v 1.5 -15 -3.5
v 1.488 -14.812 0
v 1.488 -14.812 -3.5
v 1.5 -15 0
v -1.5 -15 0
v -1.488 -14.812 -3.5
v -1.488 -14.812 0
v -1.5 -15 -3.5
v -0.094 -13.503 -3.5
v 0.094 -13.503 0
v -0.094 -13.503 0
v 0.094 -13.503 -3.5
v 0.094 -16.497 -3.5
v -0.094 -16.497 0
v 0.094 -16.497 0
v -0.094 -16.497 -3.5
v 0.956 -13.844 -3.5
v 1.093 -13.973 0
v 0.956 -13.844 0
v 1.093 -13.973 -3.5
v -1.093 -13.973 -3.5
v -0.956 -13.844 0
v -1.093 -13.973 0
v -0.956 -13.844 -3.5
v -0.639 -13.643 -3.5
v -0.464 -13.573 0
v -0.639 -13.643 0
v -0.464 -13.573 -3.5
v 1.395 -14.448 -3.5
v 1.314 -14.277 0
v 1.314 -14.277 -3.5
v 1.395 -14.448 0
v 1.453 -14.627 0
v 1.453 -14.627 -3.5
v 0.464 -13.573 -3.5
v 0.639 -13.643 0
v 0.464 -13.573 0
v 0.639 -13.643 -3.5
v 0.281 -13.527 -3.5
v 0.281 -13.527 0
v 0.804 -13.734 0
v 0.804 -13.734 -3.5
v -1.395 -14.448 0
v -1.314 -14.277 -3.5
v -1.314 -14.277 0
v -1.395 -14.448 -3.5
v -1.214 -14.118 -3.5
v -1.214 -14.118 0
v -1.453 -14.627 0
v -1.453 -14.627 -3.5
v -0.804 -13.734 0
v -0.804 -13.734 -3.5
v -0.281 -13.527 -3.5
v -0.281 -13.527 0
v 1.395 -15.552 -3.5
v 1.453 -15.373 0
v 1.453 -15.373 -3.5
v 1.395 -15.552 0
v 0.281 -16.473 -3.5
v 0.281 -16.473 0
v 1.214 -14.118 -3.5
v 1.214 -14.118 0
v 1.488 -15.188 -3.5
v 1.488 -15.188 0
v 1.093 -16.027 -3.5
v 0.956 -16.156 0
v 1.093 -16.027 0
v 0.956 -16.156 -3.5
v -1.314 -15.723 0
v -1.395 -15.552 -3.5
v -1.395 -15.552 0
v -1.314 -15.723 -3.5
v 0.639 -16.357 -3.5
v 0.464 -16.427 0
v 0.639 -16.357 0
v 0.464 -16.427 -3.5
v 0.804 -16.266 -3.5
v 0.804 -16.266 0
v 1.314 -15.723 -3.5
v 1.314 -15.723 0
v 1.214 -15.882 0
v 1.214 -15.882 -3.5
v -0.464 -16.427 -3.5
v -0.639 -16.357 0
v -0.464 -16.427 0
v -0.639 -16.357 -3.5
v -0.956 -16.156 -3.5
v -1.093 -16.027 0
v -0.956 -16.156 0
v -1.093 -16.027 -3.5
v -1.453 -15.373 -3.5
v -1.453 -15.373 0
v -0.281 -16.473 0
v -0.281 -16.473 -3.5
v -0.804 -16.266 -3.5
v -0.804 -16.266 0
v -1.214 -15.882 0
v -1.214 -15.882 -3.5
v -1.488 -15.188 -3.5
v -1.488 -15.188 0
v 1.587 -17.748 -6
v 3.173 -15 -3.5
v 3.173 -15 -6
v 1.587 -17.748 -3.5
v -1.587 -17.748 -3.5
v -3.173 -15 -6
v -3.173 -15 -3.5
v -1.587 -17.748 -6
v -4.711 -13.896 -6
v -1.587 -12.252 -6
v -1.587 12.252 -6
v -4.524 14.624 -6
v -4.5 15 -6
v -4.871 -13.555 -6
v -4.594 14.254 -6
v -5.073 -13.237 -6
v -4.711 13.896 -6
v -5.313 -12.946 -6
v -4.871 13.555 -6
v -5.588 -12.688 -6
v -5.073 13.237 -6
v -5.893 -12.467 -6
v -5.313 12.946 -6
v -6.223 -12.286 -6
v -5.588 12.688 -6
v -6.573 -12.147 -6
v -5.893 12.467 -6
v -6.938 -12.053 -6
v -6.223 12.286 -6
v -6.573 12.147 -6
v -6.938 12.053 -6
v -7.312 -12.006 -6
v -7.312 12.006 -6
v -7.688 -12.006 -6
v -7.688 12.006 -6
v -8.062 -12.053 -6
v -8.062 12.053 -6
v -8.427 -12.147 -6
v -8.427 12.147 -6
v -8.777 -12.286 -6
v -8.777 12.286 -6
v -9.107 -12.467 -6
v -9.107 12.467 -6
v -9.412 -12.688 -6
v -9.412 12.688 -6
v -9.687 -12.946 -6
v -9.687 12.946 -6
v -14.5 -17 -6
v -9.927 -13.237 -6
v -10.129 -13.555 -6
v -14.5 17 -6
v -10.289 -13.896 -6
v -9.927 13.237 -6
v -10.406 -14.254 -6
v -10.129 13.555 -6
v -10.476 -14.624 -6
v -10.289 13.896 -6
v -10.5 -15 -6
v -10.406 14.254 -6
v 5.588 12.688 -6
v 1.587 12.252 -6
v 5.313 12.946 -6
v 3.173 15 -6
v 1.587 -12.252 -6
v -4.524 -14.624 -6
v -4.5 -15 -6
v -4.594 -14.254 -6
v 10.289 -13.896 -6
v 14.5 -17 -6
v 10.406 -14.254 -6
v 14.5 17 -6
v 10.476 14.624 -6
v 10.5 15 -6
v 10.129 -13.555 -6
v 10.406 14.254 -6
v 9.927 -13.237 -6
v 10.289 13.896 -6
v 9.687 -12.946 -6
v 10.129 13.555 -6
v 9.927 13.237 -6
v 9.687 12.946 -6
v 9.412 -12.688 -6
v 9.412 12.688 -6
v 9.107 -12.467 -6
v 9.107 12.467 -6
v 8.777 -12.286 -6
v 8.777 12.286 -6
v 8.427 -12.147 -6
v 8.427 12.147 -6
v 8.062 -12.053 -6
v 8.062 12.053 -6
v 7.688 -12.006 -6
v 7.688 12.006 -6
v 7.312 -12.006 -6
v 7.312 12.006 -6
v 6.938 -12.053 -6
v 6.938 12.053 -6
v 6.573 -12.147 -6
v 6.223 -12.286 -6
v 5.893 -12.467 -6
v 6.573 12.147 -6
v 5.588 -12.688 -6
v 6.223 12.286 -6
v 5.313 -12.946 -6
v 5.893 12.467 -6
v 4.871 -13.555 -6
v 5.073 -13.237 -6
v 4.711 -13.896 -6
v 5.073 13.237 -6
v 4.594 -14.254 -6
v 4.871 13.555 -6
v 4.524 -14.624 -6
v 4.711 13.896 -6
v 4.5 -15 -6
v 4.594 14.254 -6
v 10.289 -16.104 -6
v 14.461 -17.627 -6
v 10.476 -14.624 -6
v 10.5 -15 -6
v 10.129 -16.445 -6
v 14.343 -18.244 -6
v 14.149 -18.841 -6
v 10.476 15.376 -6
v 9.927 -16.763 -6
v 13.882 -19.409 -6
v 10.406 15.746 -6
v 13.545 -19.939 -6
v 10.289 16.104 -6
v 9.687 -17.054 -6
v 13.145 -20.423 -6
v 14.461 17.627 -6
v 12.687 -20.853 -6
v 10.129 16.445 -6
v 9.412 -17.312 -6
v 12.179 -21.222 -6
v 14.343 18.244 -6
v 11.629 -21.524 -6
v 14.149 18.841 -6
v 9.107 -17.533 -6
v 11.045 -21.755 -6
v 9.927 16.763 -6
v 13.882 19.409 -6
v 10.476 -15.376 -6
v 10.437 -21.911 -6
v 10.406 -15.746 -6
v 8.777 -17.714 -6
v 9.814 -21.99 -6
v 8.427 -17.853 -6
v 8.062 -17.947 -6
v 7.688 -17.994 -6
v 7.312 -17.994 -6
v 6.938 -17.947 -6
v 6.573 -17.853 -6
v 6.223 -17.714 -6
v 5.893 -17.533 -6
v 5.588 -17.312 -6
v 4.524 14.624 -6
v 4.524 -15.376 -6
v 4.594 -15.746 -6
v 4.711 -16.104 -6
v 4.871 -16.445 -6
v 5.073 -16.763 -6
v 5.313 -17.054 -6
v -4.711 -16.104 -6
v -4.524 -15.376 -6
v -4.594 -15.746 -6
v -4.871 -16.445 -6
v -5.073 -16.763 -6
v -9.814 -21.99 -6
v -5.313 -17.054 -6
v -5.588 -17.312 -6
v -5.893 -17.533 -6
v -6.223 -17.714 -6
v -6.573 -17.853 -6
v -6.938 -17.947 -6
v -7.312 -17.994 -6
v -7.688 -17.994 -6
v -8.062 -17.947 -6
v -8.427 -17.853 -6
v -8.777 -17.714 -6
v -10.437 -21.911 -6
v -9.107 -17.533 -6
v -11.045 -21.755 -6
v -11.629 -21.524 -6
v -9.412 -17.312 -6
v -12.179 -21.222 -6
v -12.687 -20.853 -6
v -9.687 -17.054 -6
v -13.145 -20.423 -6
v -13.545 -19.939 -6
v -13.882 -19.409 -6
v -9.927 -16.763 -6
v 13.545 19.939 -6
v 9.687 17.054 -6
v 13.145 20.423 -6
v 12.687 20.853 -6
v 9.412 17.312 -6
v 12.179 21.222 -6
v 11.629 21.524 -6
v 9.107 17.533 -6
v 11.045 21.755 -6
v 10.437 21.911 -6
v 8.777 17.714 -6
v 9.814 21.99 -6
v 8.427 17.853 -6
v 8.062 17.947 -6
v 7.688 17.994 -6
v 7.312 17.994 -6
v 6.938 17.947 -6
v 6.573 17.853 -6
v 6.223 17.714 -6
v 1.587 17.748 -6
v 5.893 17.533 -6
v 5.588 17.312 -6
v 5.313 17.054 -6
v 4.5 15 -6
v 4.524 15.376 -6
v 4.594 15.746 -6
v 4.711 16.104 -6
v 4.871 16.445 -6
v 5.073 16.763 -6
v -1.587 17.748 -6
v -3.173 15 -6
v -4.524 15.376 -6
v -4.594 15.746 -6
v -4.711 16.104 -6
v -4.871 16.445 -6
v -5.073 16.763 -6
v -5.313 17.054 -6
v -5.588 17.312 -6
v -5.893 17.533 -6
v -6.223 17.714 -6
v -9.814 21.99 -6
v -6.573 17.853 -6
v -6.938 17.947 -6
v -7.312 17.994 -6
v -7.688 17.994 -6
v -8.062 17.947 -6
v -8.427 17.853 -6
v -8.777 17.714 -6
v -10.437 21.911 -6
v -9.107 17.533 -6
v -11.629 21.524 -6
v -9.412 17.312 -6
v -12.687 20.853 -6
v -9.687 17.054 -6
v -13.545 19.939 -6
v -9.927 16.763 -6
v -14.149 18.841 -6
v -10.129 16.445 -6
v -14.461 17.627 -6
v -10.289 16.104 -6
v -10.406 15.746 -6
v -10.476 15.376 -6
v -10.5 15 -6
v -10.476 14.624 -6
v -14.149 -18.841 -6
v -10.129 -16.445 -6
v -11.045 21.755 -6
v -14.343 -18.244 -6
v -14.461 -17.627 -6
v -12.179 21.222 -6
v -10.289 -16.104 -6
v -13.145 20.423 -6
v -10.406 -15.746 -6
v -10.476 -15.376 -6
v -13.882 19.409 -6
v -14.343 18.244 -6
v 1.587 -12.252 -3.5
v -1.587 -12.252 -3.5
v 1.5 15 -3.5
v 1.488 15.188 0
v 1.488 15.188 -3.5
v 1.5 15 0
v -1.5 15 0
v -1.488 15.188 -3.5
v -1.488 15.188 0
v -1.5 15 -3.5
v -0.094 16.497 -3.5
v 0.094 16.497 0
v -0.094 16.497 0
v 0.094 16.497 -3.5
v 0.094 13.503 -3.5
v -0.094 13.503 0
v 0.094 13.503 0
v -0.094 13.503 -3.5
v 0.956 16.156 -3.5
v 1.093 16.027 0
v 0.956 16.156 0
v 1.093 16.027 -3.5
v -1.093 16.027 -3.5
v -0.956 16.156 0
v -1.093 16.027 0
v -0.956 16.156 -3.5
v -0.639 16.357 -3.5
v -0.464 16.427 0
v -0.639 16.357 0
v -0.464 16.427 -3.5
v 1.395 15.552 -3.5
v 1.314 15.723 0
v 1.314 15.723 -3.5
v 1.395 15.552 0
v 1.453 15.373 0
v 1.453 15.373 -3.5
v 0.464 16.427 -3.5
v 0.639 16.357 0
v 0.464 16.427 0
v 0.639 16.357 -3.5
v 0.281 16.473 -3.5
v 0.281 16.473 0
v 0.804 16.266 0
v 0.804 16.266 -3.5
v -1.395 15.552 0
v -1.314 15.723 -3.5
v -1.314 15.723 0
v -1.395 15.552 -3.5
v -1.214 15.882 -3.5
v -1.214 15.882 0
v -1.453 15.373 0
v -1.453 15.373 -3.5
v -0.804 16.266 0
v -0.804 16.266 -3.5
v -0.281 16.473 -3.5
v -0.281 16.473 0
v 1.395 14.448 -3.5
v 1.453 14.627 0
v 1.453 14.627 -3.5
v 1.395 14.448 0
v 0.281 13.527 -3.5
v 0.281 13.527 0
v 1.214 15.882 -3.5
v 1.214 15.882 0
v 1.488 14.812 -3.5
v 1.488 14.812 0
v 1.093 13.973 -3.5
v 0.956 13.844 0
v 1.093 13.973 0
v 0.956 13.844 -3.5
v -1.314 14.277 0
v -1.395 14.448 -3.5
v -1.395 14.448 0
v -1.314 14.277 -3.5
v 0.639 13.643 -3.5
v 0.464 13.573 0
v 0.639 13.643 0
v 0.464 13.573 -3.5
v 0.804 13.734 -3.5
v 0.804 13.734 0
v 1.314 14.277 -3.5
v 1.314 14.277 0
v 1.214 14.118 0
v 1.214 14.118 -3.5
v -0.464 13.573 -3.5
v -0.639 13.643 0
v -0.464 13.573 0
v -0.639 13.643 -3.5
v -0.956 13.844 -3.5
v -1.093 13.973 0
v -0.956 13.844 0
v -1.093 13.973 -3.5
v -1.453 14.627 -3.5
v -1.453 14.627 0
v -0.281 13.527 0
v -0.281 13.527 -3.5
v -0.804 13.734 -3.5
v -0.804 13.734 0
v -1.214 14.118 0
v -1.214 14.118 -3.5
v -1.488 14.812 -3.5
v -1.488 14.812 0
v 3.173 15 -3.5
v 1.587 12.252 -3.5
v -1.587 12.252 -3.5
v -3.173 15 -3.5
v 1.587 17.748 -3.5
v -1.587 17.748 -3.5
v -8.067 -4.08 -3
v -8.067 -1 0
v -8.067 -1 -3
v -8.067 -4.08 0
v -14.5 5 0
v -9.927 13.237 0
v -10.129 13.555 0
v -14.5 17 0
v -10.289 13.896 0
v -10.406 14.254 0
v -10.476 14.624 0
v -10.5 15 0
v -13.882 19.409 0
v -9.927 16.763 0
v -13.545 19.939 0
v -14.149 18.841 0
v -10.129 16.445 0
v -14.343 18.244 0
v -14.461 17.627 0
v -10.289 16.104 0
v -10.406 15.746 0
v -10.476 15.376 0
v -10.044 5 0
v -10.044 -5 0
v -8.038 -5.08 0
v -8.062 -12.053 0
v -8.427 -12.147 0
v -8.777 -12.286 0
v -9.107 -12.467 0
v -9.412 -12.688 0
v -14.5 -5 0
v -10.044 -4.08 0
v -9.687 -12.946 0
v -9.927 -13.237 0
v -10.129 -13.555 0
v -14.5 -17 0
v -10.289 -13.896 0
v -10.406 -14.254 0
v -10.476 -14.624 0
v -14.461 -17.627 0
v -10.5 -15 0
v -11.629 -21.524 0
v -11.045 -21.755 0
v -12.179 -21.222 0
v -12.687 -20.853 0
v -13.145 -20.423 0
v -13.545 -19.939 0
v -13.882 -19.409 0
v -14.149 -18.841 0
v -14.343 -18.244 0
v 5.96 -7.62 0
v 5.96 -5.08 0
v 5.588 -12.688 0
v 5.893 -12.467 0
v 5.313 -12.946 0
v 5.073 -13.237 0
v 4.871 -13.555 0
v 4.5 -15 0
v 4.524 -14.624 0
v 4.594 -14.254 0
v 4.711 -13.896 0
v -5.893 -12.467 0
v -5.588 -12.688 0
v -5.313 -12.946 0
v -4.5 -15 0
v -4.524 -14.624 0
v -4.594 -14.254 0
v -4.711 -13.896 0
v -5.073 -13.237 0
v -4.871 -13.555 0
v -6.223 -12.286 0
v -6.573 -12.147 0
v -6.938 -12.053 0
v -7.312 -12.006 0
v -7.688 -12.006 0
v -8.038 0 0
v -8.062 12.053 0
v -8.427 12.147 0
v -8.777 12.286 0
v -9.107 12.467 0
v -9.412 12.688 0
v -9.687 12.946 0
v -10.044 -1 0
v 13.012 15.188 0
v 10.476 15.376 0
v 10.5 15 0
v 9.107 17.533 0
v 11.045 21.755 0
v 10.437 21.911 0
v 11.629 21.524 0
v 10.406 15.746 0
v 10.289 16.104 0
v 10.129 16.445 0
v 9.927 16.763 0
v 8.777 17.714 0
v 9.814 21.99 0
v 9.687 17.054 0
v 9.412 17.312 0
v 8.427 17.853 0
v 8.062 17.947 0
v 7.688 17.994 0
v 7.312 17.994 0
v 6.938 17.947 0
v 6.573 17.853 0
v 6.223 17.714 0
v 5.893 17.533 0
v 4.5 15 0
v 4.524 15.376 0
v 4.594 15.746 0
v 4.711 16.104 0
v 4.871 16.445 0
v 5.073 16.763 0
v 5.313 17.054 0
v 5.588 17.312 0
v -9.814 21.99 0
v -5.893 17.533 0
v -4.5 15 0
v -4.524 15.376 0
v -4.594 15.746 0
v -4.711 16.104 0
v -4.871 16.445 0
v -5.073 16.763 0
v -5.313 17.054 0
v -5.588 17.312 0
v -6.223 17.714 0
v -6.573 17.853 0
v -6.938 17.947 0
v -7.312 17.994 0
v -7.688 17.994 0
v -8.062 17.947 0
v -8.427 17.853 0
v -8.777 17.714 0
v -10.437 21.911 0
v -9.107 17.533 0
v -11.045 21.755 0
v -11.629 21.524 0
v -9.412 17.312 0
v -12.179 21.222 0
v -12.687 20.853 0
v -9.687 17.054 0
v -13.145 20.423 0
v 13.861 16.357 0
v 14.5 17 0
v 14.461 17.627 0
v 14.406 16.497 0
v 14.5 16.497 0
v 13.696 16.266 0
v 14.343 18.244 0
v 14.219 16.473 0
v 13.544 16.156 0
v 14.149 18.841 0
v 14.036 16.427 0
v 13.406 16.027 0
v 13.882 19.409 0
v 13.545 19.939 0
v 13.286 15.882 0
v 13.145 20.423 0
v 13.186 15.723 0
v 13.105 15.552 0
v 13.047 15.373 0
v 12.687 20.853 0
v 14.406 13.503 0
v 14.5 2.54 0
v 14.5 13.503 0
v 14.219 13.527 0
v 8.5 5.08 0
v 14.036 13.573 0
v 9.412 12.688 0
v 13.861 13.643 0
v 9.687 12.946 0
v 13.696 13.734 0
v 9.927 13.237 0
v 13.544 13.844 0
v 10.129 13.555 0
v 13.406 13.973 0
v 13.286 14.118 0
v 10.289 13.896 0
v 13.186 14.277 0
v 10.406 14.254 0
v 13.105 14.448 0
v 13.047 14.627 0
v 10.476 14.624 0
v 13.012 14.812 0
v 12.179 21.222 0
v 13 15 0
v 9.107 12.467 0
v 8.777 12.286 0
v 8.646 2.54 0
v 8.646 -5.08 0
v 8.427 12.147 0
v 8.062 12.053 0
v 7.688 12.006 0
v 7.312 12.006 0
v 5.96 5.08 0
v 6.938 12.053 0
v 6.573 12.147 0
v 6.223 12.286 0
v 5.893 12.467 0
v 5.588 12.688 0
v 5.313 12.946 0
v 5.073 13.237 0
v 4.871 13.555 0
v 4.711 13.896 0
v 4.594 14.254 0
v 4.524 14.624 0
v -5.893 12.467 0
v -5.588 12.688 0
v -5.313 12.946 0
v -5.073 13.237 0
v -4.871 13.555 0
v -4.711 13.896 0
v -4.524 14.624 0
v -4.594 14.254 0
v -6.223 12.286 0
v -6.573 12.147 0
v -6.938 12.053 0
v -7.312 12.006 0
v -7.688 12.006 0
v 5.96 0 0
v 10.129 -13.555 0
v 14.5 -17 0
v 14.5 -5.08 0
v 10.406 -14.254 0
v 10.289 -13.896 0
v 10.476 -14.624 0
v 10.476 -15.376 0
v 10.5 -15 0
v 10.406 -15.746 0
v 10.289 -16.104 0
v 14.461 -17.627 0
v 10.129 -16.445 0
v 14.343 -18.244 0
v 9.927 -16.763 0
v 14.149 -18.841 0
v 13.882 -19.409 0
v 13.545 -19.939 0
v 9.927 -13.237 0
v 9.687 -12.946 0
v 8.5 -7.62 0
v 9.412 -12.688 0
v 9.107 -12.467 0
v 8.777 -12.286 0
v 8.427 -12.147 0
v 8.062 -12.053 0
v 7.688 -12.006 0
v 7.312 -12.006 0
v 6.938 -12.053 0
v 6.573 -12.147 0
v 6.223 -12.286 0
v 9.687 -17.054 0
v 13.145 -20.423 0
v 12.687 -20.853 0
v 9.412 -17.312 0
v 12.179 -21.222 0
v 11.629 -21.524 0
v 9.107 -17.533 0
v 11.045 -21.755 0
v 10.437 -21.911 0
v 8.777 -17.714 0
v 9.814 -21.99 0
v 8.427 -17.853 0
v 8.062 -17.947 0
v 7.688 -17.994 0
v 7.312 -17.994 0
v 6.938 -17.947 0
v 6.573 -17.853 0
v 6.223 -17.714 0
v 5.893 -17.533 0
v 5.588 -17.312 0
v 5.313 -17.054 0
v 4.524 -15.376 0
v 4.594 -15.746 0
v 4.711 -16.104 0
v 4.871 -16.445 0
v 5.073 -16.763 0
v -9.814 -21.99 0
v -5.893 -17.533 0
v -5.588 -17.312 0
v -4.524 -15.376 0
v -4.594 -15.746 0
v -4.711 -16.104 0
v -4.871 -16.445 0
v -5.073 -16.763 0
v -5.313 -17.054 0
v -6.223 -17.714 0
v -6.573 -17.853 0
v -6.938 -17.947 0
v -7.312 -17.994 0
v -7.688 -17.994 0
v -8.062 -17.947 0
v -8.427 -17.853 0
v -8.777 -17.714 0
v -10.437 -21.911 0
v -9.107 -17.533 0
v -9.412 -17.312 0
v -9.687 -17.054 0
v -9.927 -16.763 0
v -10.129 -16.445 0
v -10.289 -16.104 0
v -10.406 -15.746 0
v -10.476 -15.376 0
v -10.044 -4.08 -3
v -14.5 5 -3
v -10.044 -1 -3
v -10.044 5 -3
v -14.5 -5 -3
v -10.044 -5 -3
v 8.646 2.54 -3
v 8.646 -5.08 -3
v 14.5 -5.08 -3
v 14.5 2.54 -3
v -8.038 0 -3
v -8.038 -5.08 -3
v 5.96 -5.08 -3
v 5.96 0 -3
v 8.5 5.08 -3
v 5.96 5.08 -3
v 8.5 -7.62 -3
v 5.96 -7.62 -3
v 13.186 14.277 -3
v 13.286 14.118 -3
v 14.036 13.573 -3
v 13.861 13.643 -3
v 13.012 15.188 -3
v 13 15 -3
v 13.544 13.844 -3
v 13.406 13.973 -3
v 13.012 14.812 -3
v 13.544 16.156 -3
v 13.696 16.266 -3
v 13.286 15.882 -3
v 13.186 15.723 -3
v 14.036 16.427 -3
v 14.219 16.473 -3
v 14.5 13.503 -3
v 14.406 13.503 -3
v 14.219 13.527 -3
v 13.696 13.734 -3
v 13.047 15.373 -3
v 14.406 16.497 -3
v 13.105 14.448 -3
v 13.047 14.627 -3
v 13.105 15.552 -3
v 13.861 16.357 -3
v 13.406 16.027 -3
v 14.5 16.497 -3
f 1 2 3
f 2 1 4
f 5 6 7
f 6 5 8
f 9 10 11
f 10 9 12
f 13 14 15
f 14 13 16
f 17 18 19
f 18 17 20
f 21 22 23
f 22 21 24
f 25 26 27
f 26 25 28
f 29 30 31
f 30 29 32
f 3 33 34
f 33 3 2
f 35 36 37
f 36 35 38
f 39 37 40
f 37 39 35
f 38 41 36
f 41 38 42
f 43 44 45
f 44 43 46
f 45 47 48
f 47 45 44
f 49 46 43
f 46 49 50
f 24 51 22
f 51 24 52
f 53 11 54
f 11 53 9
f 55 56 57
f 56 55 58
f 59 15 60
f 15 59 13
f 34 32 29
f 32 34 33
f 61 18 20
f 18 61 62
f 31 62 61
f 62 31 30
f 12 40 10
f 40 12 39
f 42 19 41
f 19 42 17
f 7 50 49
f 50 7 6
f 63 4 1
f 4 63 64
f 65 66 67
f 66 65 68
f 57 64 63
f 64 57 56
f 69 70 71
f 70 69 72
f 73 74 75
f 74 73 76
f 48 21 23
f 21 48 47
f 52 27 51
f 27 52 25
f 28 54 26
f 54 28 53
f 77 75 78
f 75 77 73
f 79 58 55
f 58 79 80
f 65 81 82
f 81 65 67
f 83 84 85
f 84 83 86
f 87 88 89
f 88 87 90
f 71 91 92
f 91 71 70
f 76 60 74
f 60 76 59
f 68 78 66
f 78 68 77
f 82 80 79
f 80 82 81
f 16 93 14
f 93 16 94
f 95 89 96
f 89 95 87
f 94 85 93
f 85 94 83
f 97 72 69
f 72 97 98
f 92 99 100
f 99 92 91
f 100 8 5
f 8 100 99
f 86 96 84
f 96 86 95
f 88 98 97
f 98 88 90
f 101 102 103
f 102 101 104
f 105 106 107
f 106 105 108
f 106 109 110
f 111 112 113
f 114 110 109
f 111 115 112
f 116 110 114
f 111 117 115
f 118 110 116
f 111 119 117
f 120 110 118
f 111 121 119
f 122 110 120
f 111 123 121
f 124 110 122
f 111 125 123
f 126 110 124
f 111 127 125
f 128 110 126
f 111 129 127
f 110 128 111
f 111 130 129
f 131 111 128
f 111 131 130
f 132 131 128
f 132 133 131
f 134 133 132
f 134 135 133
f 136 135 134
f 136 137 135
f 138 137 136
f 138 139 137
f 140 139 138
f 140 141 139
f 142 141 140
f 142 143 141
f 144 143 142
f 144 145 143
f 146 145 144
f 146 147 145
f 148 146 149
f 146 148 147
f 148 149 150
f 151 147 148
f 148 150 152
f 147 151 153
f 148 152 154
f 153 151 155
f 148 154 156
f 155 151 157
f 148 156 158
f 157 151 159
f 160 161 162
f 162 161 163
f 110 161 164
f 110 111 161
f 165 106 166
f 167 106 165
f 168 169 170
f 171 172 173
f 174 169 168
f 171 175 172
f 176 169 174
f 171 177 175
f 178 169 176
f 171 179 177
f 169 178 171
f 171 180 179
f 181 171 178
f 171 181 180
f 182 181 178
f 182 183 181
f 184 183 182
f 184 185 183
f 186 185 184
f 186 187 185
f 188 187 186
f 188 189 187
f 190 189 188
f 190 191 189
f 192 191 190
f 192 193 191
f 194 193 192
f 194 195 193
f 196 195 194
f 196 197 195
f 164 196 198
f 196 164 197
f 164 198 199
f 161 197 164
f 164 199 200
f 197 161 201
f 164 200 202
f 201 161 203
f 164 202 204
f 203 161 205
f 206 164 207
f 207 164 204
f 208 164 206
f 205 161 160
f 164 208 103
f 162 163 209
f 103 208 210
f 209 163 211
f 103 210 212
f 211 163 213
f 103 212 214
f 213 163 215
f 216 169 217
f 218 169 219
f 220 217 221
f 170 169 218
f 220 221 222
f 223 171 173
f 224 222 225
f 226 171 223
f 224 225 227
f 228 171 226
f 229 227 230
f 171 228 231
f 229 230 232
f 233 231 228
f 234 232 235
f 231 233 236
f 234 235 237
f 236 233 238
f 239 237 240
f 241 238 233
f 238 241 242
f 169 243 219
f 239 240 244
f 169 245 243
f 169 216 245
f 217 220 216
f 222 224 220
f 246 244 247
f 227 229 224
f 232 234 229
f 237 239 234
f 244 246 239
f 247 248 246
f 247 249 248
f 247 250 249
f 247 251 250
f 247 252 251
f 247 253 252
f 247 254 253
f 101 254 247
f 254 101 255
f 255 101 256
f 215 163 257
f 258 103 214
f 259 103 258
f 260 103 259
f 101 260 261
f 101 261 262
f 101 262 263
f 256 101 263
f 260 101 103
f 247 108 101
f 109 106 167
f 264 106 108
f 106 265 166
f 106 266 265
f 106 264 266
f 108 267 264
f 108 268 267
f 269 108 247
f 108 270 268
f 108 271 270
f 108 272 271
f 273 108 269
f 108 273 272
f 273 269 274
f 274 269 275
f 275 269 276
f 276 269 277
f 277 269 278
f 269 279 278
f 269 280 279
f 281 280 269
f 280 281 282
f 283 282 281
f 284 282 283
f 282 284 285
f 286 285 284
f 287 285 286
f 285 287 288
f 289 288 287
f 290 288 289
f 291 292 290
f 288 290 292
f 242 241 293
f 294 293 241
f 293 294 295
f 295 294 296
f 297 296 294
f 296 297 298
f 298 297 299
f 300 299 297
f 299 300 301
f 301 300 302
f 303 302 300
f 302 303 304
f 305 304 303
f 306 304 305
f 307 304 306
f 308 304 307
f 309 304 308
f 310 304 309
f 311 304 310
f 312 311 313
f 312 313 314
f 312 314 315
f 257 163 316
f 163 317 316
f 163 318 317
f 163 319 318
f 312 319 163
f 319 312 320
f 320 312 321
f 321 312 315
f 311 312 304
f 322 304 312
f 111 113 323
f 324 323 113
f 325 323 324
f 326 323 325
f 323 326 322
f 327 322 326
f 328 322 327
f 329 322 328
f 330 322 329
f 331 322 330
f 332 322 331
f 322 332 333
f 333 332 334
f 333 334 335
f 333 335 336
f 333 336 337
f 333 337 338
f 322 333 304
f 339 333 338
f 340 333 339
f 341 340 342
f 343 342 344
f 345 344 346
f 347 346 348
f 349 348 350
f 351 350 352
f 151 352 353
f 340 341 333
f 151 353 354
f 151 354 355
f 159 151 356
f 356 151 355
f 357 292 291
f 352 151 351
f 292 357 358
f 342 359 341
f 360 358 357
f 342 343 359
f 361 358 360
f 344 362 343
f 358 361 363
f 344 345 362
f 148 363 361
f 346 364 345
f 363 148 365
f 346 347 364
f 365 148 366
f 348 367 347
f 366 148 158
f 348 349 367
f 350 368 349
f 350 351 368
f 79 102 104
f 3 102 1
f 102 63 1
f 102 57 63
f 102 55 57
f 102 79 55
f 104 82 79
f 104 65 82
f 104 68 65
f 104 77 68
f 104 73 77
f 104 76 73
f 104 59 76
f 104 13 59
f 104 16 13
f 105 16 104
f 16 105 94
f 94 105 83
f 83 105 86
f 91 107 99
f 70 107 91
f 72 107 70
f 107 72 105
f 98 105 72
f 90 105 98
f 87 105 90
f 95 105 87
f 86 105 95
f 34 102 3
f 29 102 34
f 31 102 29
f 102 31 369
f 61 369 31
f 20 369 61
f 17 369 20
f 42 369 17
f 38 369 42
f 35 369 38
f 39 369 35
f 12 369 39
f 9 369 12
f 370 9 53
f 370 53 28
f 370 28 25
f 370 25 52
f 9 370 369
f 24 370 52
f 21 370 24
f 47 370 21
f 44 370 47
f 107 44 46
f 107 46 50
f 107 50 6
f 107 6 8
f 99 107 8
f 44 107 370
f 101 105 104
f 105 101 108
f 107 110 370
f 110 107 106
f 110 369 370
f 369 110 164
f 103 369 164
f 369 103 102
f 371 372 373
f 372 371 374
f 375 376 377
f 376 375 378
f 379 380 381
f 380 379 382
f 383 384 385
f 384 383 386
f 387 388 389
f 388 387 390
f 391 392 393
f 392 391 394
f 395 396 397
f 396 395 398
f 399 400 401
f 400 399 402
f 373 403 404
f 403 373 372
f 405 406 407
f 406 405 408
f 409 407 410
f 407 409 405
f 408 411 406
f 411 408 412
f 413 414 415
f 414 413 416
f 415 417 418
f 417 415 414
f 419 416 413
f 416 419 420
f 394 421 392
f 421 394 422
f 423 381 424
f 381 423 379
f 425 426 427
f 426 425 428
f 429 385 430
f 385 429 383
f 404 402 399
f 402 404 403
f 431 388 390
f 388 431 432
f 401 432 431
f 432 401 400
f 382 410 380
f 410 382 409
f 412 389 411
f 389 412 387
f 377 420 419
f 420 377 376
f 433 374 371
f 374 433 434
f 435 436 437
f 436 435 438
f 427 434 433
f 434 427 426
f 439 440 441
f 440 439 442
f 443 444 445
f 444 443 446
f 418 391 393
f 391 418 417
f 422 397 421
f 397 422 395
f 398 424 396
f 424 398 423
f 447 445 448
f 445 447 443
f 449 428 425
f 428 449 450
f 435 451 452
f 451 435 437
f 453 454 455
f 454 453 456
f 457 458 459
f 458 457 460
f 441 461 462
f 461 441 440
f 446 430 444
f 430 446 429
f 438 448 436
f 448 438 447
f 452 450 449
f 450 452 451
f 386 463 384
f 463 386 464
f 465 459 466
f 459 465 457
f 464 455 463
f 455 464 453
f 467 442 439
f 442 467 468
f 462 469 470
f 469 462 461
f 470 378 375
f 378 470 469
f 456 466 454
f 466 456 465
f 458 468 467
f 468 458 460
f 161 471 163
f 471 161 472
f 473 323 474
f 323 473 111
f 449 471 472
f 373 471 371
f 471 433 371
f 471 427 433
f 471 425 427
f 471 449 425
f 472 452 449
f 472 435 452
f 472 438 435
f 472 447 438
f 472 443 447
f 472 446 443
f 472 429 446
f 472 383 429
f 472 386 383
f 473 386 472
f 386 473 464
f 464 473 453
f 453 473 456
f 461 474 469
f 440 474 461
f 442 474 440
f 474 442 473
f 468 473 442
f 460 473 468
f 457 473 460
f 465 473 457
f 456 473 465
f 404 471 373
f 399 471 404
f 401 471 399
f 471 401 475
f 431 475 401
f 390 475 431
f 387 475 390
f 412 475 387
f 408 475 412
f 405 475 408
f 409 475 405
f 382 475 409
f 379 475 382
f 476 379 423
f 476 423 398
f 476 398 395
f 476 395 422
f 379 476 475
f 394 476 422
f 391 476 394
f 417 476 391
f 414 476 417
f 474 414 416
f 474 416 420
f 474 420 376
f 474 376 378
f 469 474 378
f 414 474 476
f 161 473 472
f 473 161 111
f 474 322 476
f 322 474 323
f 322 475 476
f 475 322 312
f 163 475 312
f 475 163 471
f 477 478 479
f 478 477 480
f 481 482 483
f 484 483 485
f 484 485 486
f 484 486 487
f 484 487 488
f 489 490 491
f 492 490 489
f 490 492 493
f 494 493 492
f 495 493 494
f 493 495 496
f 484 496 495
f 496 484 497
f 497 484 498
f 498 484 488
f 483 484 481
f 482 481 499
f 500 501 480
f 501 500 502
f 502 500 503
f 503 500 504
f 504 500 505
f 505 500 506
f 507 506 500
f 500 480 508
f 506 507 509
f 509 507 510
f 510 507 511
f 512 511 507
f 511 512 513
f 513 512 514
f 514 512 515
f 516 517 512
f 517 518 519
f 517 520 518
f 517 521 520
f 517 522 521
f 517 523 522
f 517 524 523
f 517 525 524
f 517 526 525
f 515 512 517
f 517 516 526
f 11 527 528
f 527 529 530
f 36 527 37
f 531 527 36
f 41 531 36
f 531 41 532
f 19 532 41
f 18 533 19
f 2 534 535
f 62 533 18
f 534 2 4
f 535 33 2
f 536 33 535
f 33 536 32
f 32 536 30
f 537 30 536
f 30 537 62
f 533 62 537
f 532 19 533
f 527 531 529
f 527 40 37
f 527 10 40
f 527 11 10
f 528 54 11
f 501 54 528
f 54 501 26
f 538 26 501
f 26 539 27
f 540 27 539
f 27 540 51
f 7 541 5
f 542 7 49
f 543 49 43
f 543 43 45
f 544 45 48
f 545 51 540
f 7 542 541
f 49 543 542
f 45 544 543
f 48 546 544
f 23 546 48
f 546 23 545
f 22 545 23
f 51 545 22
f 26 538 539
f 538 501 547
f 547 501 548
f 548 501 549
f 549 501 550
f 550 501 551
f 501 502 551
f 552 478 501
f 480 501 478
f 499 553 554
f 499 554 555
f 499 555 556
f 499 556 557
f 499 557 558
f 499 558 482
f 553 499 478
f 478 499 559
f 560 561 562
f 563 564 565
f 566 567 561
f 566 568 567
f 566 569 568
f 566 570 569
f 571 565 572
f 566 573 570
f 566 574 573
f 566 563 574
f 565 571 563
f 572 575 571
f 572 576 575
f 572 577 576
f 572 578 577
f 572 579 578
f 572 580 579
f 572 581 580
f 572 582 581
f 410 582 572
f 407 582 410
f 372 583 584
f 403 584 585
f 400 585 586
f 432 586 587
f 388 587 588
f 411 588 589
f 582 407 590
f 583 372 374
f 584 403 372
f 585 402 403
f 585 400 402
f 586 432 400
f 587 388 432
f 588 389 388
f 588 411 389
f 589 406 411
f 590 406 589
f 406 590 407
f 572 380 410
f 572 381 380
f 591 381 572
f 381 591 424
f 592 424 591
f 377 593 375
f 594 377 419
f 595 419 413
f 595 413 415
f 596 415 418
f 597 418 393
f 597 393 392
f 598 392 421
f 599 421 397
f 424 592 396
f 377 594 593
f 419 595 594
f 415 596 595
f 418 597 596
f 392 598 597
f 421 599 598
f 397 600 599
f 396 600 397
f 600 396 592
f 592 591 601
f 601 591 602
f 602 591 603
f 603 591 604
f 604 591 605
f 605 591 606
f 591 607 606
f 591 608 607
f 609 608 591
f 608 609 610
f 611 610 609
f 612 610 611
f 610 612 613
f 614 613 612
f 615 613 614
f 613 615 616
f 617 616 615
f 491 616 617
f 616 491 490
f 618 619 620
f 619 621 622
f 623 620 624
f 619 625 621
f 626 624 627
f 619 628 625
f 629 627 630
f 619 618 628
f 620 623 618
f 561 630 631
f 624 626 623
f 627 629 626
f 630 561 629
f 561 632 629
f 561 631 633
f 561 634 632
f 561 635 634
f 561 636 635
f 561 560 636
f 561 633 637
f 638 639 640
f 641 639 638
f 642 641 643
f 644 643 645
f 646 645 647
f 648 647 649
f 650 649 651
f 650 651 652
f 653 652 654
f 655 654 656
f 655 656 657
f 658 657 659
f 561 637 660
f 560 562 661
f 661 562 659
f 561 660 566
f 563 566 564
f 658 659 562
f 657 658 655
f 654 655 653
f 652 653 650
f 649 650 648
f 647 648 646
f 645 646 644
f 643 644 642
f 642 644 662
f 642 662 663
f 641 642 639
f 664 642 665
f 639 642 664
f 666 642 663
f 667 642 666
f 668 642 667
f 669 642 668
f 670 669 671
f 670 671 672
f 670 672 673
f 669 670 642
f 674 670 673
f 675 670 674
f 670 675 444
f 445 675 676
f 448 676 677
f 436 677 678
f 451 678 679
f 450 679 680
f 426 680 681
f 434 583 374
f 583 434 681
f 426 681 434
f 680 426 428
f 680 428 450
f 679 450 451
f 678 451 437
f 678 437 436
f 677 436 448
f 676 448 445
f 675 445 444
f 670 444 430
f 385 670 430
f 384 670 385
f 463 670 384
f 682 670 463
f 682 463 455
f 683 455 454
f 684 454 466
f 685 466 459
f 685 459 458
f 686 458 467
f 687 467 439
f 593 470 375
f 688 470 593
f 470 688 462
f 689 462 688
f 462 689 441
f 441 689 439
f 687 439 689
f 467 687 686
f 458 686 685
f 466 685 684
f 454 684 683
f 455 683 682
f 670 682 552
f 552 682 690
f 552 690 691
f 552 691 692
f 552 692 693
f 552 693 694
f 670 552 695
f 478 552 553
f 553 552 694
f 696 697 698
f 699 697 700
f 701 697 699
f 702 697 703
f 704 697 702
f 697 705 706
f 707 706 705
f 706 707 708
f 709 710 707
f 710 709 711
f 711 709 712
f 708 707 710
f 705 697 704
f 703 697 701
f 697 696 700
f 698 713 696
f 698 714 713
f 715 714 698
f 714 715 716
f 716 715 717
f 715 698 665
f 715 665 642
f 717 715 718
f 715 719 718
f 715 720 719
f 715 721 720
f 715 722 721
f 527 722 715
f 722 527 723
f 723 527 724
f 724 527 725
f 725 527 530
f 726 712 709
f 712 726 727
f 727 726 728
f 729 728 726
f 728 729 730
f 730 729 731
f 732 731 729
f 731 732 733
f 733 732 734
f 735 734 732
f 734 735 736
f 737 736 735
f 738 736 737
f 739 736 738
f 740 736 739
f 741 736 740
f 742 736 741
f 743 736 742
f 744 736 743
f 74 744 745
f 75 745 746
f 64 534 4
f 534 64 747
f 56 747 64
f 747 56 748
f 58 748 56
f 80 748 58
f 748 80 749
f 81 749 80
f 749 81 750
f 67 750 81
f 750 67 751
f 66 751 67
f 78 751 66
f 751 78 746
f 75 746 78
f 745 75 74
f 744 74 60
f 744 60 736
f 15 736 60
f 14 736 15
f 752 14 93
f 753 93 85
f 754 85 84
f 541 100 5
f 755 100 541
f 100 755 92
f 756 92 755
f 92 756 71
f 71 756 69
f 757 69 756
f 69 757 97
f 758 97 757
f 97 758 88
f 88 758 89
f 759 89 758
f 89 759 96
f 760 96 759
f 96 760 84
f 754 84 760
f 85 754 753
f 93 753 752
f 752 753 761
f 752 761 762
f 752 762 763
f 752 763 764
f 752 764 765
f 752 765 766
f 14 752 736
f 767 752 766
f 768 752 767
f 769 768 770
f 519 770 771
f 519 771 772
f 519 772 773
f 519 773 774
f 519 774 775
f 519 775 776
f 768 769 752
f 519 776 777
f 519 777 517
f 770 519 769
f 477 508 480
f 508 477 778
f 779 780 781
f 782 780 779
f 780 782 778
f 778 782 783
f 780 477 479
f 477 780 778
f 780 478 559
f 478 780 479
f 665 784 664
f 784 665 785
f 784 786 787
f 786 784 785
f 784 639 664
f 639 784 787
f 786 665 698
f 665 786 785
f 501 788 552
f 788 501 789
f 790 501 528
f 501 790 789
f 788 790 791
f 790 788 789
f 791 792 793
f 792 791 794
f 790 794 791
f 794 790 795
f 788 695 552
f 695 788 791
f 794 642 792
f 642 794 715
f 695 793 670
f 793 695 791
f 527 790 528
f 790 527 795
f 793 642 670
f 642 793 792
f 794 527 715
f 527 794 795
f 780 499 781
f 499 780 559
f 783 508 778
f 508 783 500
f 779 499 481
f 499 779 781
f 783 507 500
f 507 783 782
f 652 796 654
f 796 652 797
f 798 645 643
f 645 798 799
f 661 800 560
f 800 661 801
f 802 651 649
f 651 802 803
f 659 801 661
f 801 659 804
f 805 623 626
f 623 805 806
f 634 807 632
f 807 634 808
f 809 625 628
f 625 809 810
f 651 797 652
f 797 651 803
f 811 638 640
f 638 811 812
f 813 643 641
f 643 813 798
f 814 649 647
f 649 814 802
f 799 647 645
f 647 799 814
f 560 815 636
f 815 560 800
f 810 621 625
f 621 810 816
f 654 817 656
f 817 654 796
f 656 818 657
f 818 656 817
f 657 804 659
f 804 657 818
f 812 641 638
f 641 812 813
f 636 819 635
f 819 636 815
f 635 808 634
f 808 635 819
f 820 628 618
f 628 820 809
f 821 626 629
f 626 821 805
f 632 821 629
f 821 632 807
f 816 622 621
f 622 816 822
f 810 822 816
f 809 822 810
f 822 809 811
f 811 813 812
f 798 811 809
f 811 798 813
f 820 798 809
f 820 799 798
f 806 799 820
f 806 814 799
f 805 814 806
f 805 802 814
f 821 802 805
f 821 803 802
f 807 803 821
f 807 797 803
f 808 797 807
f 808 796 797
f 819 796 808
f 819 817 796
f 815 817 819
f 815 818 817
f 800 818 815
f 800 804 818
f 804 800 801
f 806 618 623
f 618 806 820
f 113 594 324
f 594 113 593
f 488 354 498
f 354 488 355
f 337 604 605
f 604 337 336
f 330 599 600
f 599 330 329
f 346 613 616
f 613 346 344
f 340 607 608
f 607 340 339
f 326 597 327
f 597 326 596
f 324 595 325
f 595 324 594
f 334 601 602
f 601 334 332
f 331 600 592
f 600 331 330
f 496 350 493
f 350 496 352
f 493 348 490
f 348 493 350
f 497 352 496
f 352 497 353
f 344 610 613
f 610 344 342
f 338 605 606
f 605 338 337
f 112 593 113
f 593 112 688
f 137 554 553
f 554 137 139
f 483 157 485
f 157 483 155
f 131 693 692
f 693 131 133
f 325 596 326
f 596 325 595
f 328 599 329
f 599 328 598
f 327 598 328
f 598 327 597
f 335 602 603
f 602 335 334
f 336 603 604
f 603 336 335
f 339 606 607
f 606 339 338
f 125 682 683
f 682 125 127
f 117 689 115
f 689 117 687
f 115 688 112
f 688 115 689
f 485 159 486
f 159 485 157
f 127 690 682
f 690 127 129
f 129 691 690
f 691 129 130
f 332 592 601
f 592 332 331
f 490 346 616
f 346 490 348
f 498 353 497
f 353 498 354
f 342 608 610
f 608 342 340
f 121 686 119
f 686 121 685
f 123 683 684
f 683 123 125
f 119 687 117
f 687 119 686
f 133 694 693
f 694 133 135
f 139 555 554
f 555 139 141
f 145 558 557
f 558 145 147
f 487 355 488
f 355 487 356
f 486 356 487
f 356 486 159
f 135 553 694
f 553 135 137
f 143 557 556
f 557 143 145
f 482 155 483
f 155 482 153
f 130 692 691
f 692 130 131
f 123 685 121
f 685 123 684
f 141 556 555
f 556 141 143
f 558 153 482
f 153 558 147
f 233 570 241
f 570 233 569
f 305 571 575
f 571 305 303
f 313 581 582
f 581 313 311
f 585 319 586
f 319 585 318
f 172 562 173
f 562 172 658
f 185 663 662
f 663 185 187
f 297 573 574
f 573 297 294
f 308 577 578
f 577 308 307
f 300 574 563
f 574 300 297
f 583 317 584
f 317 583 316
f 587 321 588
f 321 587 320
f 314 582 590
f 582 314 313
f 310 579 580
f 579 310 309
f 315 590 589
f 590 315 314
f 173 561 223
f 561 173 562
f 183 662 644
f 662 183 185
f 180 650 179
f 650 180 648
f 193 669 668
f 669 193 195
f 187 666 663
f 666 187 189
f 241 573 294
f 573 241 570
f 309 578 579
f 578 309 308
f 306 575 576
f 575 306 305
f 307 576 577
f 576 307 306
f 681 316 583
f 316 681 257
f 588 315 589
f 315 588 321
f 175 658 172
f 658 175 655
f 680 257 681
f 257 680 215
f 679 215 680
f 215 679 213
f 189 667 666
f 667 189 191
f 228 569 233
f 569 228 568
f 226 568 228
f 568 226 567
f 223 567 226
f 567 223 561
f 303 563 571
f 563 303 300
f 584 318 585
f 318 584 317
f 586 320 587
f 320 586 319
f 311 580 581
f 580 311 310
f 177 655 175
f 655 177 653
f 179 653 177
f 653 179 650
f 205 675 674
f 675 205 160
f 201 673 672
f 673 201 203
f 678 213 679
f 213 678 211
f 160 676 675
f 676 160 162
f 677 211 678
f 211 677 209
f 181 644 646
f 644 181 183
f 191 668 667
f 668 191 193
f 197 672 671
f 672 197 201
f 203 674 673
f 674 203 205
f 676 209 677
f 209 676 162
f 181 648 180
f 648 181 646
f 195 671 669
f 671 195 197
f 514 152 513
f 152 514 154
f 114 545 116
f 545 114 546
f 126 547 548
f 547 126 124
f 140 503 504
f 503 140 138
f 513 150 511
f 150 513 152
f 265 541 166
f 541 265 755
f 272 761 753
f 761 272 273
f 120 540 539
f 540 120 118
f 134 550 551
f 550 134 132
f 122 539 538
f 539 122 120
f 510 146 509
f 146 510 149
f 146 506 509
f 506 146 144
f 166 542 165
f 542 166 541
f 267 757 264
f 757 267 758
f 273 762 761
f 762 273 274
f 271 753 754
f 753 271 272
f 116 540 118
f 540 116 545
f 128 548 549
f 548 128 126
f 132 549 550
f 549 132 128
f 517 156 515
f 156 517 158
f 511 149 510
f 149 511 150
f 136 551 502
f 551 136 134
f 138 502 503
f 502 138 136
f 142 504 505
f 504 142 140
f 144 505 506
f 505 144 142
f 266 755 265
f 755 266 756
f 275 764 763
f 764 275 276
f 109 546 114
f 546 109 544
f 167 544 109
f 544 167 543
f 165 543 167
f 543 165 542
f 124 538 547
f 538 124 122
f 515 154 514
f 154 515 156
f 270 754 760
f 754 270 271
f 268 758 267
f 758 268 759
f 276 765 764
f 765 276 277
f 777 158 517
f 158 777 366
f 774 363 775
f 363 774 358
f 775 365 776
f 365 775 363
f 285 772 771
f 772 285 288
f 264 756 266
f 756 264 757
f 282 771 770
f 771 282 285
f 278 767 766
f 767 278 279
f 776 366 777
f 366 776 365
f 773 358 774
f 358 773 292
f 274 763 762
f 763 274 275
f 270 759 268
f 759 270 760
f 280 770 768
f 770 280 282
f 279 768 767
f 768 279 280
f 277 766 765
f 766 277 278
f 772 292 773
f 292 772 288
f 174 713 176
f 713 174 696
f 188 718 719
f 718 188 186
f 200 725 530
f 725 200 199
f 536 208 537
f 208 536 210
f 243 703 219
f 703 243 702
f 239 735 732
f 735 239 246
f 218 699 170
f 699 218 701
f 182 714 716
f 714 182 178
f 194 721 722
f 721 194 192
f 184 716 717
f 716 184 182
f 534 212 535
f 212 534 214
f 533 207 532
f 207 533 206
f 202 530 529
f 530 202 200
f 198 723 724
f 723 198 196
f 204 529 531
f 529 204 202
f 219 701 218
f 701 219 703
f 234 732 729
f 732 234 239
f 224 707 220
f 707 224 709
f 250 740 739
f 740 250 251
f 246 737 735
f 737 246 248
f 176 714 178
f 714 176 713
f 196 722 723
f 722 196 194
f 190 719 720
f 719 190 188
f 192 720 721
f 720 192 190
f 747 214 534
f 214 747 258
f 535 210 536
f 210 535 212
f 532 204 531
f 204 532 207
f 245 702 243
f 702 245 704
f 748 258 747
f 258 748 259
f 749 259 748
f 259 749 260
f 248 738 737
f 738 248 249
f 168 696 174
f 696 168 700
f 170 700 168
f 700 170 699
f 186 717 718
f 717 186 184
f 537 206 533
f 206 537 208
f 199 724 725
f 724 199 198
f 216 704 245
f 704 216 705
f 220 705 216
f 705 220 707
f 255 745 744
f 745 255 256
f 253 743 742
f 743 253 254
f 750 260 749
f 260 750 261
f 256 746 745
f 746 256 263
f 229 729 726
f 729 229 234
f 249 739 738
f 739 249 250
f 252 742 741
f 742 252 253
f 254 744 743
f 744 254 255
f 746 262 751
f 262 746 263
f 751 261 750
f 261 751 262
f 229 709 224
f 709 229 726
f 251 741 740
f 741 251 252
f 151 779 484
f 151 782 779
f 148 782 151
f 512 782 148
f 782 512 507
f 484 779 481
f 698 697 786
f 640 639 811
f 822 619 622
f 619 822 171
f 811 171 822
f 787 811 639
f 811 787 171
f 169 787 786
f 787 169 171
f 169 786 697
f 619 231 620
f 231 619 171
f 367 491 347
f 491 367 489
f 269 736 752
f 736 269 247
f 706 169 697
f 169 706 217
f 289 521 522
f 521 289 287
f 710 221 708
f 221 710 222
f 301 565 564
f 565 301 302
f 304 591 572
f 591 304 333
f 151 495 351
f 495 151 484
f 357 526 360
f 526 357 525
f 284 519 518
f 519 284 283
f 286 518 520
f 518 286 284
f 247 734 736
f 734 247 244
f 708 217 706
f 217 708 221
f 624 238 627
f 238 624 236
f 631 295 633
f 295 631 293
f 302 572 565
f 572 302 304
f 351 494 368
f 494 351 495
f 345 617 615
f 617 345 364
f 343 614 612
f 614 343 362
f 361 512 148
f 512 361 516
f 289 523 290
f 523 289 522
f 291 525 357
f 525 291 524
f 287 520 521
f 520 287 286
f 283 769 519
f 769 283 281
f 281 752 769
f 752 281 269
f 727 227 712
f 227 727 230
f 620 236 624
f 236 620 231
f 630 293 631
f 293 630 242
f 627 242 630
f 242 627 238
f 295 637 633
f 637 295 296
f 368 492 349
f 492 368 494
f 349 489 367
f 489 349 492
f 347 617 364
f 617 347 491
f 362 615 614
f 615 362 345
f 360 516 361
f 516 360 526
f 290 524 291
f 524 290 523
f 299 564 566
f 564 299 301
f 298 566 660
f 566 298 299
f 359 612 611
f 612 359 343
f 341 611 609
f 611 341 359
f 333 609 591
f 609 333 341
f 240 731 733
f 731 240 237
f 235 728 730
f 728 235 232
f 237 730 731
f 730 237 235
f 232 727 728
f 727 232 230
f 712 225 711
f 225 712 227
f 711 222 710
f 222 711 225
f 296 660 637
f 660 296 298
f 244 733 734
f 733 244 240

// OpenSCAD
$fn = 50;


difference() {
	union() {
		translate(v = [0, 0, -6]) {
			hull() {
				translate(v = [-9.5000000000, 17.0000000000, 0]) {
					cylinder(h = 6, r = 5);
				}
				translate(v = [9.5000000000, 17.0000000000, 0]) {
					cylinder(h = 6, r = 5);
				}
				translate(v = [-9.5000000000, -17.0000000000, 0]) {
					cylinder(h = 6, r = 5);
				}
				translate(v = [9.5000000000, -17.0000000000, 0]) {
					cylinder(h = 6, r = 5);
				}
			}
		}
	}
	union() {
		translate(v = [0, -15, -6]) {
			rotate(a = [0, 0, 0]) {
				difference() {
					union() {
						translate(v = [0, 0, -50.0000000000]) {
							cylinder(h = 100, r = 1.5000000000);
						}
						translate(v = [0, 0, -50.0000000000]) {
							cylinder(h = 100, r = 1.5000000000);
						}
						linear_extrude(height = 2.5000000000) {
							polygon(points = [[3.1735000000, 0.0000000000], [1.5867500000, 2.7483316189], [-1.5867500000, 2.7483316189], [-3.1735000000, 0.0000000000], [-1.5867500000, -2.7483316189], [1.5867500000, -2.7483316189]]);
						}
						translate(v = [0, 0, -50.0000000000]) {
							cylinder(h = 100, r = 1.5000000000);
						}
					}
					union();
				}
			}
		}
		translate(v = [0, 15, -6]) {
			rotate(a = [0, 0, 0]) {
				difference() {
					union() {
						translate(v = [0, 0, -50.0000000000]) {
							cylinder(h = 100, r = 1.5000000000);
						}
						translate(v = [0, 0, -50.0000000000]) {
							cylinder(h = 100, r = 1.5000000000);
						}
						linear_extrude(height = 2.5000000000) {
							polygon(points = [[3.1735000000, 0.0000000000], [1.5867500000, 2.7483316189], [-1.5867500000, 2.7483316189], [-3.1735000000, 0.0000000000], [-1.5867500000, -2.7483316189], [1.5867500000, -2.7483316189]]);
						}
						translate(v = [0, 0, -50.0000000000]) {
							cylinder(h = 100, r = 1.5000000000);
						}
					}
					union();
				}
			}
		}
		translate(v = [15.0000000000, 0, -3]) {
			rotate(a = [0, 0, 180]) {
				difference() {
					union() {
						#translate(v = [23.0670000000, 1.0000000000, 0]) {
							cube(size = [5, 3.0800000000, 3]);
						}
						#translate(v = [0.3540000000, -2.5400000000, 0]) {
							cube(size = [6, 7.6200000000, 3]);
						}
						#translate(v = [9.0380000000, 0.0000000000, 0]) {
							cube(size = [14, 5.0800000000, 3]);
						}
						#translate(v = [6.5000000000, -5.0800000000, 0]) {
							cube(size = [2.5400000000, 12.7000000000, 3]);
						}
						#translate(v = [25.0440000000, -5.0000000000, 0]) {
							cube(size = [7, 10, 3]);
						}
						#translate(v = [0.5000000000, -15, 0.0000000000]) {
							cylinder(h = 3, r = 1.5000000000);
						}
					}
					union();
				}
			}
		}
		translate(v = [-7.5000000000, 15.0000000000, -50.0000000000]) {
			cylinder(h = 100, r = 3.0000000000);
		}
		translate(v = [7.5000000000, 15.0000000000, -50.0000000000]) {
			cylinder(h = 100, r = 3.0000000000);
		}
		translate(v = [-7.5000000000, -15.0000000000, -50.0000000000]) {
			cylinder(h = 100, r = 3.0000000000);
		}
		translate(v = [7.5000000000, -15.0000000000, -50.0000000000]) {
			cylinder(h = 100, r = 3.0000000000);
		}
	}
}
